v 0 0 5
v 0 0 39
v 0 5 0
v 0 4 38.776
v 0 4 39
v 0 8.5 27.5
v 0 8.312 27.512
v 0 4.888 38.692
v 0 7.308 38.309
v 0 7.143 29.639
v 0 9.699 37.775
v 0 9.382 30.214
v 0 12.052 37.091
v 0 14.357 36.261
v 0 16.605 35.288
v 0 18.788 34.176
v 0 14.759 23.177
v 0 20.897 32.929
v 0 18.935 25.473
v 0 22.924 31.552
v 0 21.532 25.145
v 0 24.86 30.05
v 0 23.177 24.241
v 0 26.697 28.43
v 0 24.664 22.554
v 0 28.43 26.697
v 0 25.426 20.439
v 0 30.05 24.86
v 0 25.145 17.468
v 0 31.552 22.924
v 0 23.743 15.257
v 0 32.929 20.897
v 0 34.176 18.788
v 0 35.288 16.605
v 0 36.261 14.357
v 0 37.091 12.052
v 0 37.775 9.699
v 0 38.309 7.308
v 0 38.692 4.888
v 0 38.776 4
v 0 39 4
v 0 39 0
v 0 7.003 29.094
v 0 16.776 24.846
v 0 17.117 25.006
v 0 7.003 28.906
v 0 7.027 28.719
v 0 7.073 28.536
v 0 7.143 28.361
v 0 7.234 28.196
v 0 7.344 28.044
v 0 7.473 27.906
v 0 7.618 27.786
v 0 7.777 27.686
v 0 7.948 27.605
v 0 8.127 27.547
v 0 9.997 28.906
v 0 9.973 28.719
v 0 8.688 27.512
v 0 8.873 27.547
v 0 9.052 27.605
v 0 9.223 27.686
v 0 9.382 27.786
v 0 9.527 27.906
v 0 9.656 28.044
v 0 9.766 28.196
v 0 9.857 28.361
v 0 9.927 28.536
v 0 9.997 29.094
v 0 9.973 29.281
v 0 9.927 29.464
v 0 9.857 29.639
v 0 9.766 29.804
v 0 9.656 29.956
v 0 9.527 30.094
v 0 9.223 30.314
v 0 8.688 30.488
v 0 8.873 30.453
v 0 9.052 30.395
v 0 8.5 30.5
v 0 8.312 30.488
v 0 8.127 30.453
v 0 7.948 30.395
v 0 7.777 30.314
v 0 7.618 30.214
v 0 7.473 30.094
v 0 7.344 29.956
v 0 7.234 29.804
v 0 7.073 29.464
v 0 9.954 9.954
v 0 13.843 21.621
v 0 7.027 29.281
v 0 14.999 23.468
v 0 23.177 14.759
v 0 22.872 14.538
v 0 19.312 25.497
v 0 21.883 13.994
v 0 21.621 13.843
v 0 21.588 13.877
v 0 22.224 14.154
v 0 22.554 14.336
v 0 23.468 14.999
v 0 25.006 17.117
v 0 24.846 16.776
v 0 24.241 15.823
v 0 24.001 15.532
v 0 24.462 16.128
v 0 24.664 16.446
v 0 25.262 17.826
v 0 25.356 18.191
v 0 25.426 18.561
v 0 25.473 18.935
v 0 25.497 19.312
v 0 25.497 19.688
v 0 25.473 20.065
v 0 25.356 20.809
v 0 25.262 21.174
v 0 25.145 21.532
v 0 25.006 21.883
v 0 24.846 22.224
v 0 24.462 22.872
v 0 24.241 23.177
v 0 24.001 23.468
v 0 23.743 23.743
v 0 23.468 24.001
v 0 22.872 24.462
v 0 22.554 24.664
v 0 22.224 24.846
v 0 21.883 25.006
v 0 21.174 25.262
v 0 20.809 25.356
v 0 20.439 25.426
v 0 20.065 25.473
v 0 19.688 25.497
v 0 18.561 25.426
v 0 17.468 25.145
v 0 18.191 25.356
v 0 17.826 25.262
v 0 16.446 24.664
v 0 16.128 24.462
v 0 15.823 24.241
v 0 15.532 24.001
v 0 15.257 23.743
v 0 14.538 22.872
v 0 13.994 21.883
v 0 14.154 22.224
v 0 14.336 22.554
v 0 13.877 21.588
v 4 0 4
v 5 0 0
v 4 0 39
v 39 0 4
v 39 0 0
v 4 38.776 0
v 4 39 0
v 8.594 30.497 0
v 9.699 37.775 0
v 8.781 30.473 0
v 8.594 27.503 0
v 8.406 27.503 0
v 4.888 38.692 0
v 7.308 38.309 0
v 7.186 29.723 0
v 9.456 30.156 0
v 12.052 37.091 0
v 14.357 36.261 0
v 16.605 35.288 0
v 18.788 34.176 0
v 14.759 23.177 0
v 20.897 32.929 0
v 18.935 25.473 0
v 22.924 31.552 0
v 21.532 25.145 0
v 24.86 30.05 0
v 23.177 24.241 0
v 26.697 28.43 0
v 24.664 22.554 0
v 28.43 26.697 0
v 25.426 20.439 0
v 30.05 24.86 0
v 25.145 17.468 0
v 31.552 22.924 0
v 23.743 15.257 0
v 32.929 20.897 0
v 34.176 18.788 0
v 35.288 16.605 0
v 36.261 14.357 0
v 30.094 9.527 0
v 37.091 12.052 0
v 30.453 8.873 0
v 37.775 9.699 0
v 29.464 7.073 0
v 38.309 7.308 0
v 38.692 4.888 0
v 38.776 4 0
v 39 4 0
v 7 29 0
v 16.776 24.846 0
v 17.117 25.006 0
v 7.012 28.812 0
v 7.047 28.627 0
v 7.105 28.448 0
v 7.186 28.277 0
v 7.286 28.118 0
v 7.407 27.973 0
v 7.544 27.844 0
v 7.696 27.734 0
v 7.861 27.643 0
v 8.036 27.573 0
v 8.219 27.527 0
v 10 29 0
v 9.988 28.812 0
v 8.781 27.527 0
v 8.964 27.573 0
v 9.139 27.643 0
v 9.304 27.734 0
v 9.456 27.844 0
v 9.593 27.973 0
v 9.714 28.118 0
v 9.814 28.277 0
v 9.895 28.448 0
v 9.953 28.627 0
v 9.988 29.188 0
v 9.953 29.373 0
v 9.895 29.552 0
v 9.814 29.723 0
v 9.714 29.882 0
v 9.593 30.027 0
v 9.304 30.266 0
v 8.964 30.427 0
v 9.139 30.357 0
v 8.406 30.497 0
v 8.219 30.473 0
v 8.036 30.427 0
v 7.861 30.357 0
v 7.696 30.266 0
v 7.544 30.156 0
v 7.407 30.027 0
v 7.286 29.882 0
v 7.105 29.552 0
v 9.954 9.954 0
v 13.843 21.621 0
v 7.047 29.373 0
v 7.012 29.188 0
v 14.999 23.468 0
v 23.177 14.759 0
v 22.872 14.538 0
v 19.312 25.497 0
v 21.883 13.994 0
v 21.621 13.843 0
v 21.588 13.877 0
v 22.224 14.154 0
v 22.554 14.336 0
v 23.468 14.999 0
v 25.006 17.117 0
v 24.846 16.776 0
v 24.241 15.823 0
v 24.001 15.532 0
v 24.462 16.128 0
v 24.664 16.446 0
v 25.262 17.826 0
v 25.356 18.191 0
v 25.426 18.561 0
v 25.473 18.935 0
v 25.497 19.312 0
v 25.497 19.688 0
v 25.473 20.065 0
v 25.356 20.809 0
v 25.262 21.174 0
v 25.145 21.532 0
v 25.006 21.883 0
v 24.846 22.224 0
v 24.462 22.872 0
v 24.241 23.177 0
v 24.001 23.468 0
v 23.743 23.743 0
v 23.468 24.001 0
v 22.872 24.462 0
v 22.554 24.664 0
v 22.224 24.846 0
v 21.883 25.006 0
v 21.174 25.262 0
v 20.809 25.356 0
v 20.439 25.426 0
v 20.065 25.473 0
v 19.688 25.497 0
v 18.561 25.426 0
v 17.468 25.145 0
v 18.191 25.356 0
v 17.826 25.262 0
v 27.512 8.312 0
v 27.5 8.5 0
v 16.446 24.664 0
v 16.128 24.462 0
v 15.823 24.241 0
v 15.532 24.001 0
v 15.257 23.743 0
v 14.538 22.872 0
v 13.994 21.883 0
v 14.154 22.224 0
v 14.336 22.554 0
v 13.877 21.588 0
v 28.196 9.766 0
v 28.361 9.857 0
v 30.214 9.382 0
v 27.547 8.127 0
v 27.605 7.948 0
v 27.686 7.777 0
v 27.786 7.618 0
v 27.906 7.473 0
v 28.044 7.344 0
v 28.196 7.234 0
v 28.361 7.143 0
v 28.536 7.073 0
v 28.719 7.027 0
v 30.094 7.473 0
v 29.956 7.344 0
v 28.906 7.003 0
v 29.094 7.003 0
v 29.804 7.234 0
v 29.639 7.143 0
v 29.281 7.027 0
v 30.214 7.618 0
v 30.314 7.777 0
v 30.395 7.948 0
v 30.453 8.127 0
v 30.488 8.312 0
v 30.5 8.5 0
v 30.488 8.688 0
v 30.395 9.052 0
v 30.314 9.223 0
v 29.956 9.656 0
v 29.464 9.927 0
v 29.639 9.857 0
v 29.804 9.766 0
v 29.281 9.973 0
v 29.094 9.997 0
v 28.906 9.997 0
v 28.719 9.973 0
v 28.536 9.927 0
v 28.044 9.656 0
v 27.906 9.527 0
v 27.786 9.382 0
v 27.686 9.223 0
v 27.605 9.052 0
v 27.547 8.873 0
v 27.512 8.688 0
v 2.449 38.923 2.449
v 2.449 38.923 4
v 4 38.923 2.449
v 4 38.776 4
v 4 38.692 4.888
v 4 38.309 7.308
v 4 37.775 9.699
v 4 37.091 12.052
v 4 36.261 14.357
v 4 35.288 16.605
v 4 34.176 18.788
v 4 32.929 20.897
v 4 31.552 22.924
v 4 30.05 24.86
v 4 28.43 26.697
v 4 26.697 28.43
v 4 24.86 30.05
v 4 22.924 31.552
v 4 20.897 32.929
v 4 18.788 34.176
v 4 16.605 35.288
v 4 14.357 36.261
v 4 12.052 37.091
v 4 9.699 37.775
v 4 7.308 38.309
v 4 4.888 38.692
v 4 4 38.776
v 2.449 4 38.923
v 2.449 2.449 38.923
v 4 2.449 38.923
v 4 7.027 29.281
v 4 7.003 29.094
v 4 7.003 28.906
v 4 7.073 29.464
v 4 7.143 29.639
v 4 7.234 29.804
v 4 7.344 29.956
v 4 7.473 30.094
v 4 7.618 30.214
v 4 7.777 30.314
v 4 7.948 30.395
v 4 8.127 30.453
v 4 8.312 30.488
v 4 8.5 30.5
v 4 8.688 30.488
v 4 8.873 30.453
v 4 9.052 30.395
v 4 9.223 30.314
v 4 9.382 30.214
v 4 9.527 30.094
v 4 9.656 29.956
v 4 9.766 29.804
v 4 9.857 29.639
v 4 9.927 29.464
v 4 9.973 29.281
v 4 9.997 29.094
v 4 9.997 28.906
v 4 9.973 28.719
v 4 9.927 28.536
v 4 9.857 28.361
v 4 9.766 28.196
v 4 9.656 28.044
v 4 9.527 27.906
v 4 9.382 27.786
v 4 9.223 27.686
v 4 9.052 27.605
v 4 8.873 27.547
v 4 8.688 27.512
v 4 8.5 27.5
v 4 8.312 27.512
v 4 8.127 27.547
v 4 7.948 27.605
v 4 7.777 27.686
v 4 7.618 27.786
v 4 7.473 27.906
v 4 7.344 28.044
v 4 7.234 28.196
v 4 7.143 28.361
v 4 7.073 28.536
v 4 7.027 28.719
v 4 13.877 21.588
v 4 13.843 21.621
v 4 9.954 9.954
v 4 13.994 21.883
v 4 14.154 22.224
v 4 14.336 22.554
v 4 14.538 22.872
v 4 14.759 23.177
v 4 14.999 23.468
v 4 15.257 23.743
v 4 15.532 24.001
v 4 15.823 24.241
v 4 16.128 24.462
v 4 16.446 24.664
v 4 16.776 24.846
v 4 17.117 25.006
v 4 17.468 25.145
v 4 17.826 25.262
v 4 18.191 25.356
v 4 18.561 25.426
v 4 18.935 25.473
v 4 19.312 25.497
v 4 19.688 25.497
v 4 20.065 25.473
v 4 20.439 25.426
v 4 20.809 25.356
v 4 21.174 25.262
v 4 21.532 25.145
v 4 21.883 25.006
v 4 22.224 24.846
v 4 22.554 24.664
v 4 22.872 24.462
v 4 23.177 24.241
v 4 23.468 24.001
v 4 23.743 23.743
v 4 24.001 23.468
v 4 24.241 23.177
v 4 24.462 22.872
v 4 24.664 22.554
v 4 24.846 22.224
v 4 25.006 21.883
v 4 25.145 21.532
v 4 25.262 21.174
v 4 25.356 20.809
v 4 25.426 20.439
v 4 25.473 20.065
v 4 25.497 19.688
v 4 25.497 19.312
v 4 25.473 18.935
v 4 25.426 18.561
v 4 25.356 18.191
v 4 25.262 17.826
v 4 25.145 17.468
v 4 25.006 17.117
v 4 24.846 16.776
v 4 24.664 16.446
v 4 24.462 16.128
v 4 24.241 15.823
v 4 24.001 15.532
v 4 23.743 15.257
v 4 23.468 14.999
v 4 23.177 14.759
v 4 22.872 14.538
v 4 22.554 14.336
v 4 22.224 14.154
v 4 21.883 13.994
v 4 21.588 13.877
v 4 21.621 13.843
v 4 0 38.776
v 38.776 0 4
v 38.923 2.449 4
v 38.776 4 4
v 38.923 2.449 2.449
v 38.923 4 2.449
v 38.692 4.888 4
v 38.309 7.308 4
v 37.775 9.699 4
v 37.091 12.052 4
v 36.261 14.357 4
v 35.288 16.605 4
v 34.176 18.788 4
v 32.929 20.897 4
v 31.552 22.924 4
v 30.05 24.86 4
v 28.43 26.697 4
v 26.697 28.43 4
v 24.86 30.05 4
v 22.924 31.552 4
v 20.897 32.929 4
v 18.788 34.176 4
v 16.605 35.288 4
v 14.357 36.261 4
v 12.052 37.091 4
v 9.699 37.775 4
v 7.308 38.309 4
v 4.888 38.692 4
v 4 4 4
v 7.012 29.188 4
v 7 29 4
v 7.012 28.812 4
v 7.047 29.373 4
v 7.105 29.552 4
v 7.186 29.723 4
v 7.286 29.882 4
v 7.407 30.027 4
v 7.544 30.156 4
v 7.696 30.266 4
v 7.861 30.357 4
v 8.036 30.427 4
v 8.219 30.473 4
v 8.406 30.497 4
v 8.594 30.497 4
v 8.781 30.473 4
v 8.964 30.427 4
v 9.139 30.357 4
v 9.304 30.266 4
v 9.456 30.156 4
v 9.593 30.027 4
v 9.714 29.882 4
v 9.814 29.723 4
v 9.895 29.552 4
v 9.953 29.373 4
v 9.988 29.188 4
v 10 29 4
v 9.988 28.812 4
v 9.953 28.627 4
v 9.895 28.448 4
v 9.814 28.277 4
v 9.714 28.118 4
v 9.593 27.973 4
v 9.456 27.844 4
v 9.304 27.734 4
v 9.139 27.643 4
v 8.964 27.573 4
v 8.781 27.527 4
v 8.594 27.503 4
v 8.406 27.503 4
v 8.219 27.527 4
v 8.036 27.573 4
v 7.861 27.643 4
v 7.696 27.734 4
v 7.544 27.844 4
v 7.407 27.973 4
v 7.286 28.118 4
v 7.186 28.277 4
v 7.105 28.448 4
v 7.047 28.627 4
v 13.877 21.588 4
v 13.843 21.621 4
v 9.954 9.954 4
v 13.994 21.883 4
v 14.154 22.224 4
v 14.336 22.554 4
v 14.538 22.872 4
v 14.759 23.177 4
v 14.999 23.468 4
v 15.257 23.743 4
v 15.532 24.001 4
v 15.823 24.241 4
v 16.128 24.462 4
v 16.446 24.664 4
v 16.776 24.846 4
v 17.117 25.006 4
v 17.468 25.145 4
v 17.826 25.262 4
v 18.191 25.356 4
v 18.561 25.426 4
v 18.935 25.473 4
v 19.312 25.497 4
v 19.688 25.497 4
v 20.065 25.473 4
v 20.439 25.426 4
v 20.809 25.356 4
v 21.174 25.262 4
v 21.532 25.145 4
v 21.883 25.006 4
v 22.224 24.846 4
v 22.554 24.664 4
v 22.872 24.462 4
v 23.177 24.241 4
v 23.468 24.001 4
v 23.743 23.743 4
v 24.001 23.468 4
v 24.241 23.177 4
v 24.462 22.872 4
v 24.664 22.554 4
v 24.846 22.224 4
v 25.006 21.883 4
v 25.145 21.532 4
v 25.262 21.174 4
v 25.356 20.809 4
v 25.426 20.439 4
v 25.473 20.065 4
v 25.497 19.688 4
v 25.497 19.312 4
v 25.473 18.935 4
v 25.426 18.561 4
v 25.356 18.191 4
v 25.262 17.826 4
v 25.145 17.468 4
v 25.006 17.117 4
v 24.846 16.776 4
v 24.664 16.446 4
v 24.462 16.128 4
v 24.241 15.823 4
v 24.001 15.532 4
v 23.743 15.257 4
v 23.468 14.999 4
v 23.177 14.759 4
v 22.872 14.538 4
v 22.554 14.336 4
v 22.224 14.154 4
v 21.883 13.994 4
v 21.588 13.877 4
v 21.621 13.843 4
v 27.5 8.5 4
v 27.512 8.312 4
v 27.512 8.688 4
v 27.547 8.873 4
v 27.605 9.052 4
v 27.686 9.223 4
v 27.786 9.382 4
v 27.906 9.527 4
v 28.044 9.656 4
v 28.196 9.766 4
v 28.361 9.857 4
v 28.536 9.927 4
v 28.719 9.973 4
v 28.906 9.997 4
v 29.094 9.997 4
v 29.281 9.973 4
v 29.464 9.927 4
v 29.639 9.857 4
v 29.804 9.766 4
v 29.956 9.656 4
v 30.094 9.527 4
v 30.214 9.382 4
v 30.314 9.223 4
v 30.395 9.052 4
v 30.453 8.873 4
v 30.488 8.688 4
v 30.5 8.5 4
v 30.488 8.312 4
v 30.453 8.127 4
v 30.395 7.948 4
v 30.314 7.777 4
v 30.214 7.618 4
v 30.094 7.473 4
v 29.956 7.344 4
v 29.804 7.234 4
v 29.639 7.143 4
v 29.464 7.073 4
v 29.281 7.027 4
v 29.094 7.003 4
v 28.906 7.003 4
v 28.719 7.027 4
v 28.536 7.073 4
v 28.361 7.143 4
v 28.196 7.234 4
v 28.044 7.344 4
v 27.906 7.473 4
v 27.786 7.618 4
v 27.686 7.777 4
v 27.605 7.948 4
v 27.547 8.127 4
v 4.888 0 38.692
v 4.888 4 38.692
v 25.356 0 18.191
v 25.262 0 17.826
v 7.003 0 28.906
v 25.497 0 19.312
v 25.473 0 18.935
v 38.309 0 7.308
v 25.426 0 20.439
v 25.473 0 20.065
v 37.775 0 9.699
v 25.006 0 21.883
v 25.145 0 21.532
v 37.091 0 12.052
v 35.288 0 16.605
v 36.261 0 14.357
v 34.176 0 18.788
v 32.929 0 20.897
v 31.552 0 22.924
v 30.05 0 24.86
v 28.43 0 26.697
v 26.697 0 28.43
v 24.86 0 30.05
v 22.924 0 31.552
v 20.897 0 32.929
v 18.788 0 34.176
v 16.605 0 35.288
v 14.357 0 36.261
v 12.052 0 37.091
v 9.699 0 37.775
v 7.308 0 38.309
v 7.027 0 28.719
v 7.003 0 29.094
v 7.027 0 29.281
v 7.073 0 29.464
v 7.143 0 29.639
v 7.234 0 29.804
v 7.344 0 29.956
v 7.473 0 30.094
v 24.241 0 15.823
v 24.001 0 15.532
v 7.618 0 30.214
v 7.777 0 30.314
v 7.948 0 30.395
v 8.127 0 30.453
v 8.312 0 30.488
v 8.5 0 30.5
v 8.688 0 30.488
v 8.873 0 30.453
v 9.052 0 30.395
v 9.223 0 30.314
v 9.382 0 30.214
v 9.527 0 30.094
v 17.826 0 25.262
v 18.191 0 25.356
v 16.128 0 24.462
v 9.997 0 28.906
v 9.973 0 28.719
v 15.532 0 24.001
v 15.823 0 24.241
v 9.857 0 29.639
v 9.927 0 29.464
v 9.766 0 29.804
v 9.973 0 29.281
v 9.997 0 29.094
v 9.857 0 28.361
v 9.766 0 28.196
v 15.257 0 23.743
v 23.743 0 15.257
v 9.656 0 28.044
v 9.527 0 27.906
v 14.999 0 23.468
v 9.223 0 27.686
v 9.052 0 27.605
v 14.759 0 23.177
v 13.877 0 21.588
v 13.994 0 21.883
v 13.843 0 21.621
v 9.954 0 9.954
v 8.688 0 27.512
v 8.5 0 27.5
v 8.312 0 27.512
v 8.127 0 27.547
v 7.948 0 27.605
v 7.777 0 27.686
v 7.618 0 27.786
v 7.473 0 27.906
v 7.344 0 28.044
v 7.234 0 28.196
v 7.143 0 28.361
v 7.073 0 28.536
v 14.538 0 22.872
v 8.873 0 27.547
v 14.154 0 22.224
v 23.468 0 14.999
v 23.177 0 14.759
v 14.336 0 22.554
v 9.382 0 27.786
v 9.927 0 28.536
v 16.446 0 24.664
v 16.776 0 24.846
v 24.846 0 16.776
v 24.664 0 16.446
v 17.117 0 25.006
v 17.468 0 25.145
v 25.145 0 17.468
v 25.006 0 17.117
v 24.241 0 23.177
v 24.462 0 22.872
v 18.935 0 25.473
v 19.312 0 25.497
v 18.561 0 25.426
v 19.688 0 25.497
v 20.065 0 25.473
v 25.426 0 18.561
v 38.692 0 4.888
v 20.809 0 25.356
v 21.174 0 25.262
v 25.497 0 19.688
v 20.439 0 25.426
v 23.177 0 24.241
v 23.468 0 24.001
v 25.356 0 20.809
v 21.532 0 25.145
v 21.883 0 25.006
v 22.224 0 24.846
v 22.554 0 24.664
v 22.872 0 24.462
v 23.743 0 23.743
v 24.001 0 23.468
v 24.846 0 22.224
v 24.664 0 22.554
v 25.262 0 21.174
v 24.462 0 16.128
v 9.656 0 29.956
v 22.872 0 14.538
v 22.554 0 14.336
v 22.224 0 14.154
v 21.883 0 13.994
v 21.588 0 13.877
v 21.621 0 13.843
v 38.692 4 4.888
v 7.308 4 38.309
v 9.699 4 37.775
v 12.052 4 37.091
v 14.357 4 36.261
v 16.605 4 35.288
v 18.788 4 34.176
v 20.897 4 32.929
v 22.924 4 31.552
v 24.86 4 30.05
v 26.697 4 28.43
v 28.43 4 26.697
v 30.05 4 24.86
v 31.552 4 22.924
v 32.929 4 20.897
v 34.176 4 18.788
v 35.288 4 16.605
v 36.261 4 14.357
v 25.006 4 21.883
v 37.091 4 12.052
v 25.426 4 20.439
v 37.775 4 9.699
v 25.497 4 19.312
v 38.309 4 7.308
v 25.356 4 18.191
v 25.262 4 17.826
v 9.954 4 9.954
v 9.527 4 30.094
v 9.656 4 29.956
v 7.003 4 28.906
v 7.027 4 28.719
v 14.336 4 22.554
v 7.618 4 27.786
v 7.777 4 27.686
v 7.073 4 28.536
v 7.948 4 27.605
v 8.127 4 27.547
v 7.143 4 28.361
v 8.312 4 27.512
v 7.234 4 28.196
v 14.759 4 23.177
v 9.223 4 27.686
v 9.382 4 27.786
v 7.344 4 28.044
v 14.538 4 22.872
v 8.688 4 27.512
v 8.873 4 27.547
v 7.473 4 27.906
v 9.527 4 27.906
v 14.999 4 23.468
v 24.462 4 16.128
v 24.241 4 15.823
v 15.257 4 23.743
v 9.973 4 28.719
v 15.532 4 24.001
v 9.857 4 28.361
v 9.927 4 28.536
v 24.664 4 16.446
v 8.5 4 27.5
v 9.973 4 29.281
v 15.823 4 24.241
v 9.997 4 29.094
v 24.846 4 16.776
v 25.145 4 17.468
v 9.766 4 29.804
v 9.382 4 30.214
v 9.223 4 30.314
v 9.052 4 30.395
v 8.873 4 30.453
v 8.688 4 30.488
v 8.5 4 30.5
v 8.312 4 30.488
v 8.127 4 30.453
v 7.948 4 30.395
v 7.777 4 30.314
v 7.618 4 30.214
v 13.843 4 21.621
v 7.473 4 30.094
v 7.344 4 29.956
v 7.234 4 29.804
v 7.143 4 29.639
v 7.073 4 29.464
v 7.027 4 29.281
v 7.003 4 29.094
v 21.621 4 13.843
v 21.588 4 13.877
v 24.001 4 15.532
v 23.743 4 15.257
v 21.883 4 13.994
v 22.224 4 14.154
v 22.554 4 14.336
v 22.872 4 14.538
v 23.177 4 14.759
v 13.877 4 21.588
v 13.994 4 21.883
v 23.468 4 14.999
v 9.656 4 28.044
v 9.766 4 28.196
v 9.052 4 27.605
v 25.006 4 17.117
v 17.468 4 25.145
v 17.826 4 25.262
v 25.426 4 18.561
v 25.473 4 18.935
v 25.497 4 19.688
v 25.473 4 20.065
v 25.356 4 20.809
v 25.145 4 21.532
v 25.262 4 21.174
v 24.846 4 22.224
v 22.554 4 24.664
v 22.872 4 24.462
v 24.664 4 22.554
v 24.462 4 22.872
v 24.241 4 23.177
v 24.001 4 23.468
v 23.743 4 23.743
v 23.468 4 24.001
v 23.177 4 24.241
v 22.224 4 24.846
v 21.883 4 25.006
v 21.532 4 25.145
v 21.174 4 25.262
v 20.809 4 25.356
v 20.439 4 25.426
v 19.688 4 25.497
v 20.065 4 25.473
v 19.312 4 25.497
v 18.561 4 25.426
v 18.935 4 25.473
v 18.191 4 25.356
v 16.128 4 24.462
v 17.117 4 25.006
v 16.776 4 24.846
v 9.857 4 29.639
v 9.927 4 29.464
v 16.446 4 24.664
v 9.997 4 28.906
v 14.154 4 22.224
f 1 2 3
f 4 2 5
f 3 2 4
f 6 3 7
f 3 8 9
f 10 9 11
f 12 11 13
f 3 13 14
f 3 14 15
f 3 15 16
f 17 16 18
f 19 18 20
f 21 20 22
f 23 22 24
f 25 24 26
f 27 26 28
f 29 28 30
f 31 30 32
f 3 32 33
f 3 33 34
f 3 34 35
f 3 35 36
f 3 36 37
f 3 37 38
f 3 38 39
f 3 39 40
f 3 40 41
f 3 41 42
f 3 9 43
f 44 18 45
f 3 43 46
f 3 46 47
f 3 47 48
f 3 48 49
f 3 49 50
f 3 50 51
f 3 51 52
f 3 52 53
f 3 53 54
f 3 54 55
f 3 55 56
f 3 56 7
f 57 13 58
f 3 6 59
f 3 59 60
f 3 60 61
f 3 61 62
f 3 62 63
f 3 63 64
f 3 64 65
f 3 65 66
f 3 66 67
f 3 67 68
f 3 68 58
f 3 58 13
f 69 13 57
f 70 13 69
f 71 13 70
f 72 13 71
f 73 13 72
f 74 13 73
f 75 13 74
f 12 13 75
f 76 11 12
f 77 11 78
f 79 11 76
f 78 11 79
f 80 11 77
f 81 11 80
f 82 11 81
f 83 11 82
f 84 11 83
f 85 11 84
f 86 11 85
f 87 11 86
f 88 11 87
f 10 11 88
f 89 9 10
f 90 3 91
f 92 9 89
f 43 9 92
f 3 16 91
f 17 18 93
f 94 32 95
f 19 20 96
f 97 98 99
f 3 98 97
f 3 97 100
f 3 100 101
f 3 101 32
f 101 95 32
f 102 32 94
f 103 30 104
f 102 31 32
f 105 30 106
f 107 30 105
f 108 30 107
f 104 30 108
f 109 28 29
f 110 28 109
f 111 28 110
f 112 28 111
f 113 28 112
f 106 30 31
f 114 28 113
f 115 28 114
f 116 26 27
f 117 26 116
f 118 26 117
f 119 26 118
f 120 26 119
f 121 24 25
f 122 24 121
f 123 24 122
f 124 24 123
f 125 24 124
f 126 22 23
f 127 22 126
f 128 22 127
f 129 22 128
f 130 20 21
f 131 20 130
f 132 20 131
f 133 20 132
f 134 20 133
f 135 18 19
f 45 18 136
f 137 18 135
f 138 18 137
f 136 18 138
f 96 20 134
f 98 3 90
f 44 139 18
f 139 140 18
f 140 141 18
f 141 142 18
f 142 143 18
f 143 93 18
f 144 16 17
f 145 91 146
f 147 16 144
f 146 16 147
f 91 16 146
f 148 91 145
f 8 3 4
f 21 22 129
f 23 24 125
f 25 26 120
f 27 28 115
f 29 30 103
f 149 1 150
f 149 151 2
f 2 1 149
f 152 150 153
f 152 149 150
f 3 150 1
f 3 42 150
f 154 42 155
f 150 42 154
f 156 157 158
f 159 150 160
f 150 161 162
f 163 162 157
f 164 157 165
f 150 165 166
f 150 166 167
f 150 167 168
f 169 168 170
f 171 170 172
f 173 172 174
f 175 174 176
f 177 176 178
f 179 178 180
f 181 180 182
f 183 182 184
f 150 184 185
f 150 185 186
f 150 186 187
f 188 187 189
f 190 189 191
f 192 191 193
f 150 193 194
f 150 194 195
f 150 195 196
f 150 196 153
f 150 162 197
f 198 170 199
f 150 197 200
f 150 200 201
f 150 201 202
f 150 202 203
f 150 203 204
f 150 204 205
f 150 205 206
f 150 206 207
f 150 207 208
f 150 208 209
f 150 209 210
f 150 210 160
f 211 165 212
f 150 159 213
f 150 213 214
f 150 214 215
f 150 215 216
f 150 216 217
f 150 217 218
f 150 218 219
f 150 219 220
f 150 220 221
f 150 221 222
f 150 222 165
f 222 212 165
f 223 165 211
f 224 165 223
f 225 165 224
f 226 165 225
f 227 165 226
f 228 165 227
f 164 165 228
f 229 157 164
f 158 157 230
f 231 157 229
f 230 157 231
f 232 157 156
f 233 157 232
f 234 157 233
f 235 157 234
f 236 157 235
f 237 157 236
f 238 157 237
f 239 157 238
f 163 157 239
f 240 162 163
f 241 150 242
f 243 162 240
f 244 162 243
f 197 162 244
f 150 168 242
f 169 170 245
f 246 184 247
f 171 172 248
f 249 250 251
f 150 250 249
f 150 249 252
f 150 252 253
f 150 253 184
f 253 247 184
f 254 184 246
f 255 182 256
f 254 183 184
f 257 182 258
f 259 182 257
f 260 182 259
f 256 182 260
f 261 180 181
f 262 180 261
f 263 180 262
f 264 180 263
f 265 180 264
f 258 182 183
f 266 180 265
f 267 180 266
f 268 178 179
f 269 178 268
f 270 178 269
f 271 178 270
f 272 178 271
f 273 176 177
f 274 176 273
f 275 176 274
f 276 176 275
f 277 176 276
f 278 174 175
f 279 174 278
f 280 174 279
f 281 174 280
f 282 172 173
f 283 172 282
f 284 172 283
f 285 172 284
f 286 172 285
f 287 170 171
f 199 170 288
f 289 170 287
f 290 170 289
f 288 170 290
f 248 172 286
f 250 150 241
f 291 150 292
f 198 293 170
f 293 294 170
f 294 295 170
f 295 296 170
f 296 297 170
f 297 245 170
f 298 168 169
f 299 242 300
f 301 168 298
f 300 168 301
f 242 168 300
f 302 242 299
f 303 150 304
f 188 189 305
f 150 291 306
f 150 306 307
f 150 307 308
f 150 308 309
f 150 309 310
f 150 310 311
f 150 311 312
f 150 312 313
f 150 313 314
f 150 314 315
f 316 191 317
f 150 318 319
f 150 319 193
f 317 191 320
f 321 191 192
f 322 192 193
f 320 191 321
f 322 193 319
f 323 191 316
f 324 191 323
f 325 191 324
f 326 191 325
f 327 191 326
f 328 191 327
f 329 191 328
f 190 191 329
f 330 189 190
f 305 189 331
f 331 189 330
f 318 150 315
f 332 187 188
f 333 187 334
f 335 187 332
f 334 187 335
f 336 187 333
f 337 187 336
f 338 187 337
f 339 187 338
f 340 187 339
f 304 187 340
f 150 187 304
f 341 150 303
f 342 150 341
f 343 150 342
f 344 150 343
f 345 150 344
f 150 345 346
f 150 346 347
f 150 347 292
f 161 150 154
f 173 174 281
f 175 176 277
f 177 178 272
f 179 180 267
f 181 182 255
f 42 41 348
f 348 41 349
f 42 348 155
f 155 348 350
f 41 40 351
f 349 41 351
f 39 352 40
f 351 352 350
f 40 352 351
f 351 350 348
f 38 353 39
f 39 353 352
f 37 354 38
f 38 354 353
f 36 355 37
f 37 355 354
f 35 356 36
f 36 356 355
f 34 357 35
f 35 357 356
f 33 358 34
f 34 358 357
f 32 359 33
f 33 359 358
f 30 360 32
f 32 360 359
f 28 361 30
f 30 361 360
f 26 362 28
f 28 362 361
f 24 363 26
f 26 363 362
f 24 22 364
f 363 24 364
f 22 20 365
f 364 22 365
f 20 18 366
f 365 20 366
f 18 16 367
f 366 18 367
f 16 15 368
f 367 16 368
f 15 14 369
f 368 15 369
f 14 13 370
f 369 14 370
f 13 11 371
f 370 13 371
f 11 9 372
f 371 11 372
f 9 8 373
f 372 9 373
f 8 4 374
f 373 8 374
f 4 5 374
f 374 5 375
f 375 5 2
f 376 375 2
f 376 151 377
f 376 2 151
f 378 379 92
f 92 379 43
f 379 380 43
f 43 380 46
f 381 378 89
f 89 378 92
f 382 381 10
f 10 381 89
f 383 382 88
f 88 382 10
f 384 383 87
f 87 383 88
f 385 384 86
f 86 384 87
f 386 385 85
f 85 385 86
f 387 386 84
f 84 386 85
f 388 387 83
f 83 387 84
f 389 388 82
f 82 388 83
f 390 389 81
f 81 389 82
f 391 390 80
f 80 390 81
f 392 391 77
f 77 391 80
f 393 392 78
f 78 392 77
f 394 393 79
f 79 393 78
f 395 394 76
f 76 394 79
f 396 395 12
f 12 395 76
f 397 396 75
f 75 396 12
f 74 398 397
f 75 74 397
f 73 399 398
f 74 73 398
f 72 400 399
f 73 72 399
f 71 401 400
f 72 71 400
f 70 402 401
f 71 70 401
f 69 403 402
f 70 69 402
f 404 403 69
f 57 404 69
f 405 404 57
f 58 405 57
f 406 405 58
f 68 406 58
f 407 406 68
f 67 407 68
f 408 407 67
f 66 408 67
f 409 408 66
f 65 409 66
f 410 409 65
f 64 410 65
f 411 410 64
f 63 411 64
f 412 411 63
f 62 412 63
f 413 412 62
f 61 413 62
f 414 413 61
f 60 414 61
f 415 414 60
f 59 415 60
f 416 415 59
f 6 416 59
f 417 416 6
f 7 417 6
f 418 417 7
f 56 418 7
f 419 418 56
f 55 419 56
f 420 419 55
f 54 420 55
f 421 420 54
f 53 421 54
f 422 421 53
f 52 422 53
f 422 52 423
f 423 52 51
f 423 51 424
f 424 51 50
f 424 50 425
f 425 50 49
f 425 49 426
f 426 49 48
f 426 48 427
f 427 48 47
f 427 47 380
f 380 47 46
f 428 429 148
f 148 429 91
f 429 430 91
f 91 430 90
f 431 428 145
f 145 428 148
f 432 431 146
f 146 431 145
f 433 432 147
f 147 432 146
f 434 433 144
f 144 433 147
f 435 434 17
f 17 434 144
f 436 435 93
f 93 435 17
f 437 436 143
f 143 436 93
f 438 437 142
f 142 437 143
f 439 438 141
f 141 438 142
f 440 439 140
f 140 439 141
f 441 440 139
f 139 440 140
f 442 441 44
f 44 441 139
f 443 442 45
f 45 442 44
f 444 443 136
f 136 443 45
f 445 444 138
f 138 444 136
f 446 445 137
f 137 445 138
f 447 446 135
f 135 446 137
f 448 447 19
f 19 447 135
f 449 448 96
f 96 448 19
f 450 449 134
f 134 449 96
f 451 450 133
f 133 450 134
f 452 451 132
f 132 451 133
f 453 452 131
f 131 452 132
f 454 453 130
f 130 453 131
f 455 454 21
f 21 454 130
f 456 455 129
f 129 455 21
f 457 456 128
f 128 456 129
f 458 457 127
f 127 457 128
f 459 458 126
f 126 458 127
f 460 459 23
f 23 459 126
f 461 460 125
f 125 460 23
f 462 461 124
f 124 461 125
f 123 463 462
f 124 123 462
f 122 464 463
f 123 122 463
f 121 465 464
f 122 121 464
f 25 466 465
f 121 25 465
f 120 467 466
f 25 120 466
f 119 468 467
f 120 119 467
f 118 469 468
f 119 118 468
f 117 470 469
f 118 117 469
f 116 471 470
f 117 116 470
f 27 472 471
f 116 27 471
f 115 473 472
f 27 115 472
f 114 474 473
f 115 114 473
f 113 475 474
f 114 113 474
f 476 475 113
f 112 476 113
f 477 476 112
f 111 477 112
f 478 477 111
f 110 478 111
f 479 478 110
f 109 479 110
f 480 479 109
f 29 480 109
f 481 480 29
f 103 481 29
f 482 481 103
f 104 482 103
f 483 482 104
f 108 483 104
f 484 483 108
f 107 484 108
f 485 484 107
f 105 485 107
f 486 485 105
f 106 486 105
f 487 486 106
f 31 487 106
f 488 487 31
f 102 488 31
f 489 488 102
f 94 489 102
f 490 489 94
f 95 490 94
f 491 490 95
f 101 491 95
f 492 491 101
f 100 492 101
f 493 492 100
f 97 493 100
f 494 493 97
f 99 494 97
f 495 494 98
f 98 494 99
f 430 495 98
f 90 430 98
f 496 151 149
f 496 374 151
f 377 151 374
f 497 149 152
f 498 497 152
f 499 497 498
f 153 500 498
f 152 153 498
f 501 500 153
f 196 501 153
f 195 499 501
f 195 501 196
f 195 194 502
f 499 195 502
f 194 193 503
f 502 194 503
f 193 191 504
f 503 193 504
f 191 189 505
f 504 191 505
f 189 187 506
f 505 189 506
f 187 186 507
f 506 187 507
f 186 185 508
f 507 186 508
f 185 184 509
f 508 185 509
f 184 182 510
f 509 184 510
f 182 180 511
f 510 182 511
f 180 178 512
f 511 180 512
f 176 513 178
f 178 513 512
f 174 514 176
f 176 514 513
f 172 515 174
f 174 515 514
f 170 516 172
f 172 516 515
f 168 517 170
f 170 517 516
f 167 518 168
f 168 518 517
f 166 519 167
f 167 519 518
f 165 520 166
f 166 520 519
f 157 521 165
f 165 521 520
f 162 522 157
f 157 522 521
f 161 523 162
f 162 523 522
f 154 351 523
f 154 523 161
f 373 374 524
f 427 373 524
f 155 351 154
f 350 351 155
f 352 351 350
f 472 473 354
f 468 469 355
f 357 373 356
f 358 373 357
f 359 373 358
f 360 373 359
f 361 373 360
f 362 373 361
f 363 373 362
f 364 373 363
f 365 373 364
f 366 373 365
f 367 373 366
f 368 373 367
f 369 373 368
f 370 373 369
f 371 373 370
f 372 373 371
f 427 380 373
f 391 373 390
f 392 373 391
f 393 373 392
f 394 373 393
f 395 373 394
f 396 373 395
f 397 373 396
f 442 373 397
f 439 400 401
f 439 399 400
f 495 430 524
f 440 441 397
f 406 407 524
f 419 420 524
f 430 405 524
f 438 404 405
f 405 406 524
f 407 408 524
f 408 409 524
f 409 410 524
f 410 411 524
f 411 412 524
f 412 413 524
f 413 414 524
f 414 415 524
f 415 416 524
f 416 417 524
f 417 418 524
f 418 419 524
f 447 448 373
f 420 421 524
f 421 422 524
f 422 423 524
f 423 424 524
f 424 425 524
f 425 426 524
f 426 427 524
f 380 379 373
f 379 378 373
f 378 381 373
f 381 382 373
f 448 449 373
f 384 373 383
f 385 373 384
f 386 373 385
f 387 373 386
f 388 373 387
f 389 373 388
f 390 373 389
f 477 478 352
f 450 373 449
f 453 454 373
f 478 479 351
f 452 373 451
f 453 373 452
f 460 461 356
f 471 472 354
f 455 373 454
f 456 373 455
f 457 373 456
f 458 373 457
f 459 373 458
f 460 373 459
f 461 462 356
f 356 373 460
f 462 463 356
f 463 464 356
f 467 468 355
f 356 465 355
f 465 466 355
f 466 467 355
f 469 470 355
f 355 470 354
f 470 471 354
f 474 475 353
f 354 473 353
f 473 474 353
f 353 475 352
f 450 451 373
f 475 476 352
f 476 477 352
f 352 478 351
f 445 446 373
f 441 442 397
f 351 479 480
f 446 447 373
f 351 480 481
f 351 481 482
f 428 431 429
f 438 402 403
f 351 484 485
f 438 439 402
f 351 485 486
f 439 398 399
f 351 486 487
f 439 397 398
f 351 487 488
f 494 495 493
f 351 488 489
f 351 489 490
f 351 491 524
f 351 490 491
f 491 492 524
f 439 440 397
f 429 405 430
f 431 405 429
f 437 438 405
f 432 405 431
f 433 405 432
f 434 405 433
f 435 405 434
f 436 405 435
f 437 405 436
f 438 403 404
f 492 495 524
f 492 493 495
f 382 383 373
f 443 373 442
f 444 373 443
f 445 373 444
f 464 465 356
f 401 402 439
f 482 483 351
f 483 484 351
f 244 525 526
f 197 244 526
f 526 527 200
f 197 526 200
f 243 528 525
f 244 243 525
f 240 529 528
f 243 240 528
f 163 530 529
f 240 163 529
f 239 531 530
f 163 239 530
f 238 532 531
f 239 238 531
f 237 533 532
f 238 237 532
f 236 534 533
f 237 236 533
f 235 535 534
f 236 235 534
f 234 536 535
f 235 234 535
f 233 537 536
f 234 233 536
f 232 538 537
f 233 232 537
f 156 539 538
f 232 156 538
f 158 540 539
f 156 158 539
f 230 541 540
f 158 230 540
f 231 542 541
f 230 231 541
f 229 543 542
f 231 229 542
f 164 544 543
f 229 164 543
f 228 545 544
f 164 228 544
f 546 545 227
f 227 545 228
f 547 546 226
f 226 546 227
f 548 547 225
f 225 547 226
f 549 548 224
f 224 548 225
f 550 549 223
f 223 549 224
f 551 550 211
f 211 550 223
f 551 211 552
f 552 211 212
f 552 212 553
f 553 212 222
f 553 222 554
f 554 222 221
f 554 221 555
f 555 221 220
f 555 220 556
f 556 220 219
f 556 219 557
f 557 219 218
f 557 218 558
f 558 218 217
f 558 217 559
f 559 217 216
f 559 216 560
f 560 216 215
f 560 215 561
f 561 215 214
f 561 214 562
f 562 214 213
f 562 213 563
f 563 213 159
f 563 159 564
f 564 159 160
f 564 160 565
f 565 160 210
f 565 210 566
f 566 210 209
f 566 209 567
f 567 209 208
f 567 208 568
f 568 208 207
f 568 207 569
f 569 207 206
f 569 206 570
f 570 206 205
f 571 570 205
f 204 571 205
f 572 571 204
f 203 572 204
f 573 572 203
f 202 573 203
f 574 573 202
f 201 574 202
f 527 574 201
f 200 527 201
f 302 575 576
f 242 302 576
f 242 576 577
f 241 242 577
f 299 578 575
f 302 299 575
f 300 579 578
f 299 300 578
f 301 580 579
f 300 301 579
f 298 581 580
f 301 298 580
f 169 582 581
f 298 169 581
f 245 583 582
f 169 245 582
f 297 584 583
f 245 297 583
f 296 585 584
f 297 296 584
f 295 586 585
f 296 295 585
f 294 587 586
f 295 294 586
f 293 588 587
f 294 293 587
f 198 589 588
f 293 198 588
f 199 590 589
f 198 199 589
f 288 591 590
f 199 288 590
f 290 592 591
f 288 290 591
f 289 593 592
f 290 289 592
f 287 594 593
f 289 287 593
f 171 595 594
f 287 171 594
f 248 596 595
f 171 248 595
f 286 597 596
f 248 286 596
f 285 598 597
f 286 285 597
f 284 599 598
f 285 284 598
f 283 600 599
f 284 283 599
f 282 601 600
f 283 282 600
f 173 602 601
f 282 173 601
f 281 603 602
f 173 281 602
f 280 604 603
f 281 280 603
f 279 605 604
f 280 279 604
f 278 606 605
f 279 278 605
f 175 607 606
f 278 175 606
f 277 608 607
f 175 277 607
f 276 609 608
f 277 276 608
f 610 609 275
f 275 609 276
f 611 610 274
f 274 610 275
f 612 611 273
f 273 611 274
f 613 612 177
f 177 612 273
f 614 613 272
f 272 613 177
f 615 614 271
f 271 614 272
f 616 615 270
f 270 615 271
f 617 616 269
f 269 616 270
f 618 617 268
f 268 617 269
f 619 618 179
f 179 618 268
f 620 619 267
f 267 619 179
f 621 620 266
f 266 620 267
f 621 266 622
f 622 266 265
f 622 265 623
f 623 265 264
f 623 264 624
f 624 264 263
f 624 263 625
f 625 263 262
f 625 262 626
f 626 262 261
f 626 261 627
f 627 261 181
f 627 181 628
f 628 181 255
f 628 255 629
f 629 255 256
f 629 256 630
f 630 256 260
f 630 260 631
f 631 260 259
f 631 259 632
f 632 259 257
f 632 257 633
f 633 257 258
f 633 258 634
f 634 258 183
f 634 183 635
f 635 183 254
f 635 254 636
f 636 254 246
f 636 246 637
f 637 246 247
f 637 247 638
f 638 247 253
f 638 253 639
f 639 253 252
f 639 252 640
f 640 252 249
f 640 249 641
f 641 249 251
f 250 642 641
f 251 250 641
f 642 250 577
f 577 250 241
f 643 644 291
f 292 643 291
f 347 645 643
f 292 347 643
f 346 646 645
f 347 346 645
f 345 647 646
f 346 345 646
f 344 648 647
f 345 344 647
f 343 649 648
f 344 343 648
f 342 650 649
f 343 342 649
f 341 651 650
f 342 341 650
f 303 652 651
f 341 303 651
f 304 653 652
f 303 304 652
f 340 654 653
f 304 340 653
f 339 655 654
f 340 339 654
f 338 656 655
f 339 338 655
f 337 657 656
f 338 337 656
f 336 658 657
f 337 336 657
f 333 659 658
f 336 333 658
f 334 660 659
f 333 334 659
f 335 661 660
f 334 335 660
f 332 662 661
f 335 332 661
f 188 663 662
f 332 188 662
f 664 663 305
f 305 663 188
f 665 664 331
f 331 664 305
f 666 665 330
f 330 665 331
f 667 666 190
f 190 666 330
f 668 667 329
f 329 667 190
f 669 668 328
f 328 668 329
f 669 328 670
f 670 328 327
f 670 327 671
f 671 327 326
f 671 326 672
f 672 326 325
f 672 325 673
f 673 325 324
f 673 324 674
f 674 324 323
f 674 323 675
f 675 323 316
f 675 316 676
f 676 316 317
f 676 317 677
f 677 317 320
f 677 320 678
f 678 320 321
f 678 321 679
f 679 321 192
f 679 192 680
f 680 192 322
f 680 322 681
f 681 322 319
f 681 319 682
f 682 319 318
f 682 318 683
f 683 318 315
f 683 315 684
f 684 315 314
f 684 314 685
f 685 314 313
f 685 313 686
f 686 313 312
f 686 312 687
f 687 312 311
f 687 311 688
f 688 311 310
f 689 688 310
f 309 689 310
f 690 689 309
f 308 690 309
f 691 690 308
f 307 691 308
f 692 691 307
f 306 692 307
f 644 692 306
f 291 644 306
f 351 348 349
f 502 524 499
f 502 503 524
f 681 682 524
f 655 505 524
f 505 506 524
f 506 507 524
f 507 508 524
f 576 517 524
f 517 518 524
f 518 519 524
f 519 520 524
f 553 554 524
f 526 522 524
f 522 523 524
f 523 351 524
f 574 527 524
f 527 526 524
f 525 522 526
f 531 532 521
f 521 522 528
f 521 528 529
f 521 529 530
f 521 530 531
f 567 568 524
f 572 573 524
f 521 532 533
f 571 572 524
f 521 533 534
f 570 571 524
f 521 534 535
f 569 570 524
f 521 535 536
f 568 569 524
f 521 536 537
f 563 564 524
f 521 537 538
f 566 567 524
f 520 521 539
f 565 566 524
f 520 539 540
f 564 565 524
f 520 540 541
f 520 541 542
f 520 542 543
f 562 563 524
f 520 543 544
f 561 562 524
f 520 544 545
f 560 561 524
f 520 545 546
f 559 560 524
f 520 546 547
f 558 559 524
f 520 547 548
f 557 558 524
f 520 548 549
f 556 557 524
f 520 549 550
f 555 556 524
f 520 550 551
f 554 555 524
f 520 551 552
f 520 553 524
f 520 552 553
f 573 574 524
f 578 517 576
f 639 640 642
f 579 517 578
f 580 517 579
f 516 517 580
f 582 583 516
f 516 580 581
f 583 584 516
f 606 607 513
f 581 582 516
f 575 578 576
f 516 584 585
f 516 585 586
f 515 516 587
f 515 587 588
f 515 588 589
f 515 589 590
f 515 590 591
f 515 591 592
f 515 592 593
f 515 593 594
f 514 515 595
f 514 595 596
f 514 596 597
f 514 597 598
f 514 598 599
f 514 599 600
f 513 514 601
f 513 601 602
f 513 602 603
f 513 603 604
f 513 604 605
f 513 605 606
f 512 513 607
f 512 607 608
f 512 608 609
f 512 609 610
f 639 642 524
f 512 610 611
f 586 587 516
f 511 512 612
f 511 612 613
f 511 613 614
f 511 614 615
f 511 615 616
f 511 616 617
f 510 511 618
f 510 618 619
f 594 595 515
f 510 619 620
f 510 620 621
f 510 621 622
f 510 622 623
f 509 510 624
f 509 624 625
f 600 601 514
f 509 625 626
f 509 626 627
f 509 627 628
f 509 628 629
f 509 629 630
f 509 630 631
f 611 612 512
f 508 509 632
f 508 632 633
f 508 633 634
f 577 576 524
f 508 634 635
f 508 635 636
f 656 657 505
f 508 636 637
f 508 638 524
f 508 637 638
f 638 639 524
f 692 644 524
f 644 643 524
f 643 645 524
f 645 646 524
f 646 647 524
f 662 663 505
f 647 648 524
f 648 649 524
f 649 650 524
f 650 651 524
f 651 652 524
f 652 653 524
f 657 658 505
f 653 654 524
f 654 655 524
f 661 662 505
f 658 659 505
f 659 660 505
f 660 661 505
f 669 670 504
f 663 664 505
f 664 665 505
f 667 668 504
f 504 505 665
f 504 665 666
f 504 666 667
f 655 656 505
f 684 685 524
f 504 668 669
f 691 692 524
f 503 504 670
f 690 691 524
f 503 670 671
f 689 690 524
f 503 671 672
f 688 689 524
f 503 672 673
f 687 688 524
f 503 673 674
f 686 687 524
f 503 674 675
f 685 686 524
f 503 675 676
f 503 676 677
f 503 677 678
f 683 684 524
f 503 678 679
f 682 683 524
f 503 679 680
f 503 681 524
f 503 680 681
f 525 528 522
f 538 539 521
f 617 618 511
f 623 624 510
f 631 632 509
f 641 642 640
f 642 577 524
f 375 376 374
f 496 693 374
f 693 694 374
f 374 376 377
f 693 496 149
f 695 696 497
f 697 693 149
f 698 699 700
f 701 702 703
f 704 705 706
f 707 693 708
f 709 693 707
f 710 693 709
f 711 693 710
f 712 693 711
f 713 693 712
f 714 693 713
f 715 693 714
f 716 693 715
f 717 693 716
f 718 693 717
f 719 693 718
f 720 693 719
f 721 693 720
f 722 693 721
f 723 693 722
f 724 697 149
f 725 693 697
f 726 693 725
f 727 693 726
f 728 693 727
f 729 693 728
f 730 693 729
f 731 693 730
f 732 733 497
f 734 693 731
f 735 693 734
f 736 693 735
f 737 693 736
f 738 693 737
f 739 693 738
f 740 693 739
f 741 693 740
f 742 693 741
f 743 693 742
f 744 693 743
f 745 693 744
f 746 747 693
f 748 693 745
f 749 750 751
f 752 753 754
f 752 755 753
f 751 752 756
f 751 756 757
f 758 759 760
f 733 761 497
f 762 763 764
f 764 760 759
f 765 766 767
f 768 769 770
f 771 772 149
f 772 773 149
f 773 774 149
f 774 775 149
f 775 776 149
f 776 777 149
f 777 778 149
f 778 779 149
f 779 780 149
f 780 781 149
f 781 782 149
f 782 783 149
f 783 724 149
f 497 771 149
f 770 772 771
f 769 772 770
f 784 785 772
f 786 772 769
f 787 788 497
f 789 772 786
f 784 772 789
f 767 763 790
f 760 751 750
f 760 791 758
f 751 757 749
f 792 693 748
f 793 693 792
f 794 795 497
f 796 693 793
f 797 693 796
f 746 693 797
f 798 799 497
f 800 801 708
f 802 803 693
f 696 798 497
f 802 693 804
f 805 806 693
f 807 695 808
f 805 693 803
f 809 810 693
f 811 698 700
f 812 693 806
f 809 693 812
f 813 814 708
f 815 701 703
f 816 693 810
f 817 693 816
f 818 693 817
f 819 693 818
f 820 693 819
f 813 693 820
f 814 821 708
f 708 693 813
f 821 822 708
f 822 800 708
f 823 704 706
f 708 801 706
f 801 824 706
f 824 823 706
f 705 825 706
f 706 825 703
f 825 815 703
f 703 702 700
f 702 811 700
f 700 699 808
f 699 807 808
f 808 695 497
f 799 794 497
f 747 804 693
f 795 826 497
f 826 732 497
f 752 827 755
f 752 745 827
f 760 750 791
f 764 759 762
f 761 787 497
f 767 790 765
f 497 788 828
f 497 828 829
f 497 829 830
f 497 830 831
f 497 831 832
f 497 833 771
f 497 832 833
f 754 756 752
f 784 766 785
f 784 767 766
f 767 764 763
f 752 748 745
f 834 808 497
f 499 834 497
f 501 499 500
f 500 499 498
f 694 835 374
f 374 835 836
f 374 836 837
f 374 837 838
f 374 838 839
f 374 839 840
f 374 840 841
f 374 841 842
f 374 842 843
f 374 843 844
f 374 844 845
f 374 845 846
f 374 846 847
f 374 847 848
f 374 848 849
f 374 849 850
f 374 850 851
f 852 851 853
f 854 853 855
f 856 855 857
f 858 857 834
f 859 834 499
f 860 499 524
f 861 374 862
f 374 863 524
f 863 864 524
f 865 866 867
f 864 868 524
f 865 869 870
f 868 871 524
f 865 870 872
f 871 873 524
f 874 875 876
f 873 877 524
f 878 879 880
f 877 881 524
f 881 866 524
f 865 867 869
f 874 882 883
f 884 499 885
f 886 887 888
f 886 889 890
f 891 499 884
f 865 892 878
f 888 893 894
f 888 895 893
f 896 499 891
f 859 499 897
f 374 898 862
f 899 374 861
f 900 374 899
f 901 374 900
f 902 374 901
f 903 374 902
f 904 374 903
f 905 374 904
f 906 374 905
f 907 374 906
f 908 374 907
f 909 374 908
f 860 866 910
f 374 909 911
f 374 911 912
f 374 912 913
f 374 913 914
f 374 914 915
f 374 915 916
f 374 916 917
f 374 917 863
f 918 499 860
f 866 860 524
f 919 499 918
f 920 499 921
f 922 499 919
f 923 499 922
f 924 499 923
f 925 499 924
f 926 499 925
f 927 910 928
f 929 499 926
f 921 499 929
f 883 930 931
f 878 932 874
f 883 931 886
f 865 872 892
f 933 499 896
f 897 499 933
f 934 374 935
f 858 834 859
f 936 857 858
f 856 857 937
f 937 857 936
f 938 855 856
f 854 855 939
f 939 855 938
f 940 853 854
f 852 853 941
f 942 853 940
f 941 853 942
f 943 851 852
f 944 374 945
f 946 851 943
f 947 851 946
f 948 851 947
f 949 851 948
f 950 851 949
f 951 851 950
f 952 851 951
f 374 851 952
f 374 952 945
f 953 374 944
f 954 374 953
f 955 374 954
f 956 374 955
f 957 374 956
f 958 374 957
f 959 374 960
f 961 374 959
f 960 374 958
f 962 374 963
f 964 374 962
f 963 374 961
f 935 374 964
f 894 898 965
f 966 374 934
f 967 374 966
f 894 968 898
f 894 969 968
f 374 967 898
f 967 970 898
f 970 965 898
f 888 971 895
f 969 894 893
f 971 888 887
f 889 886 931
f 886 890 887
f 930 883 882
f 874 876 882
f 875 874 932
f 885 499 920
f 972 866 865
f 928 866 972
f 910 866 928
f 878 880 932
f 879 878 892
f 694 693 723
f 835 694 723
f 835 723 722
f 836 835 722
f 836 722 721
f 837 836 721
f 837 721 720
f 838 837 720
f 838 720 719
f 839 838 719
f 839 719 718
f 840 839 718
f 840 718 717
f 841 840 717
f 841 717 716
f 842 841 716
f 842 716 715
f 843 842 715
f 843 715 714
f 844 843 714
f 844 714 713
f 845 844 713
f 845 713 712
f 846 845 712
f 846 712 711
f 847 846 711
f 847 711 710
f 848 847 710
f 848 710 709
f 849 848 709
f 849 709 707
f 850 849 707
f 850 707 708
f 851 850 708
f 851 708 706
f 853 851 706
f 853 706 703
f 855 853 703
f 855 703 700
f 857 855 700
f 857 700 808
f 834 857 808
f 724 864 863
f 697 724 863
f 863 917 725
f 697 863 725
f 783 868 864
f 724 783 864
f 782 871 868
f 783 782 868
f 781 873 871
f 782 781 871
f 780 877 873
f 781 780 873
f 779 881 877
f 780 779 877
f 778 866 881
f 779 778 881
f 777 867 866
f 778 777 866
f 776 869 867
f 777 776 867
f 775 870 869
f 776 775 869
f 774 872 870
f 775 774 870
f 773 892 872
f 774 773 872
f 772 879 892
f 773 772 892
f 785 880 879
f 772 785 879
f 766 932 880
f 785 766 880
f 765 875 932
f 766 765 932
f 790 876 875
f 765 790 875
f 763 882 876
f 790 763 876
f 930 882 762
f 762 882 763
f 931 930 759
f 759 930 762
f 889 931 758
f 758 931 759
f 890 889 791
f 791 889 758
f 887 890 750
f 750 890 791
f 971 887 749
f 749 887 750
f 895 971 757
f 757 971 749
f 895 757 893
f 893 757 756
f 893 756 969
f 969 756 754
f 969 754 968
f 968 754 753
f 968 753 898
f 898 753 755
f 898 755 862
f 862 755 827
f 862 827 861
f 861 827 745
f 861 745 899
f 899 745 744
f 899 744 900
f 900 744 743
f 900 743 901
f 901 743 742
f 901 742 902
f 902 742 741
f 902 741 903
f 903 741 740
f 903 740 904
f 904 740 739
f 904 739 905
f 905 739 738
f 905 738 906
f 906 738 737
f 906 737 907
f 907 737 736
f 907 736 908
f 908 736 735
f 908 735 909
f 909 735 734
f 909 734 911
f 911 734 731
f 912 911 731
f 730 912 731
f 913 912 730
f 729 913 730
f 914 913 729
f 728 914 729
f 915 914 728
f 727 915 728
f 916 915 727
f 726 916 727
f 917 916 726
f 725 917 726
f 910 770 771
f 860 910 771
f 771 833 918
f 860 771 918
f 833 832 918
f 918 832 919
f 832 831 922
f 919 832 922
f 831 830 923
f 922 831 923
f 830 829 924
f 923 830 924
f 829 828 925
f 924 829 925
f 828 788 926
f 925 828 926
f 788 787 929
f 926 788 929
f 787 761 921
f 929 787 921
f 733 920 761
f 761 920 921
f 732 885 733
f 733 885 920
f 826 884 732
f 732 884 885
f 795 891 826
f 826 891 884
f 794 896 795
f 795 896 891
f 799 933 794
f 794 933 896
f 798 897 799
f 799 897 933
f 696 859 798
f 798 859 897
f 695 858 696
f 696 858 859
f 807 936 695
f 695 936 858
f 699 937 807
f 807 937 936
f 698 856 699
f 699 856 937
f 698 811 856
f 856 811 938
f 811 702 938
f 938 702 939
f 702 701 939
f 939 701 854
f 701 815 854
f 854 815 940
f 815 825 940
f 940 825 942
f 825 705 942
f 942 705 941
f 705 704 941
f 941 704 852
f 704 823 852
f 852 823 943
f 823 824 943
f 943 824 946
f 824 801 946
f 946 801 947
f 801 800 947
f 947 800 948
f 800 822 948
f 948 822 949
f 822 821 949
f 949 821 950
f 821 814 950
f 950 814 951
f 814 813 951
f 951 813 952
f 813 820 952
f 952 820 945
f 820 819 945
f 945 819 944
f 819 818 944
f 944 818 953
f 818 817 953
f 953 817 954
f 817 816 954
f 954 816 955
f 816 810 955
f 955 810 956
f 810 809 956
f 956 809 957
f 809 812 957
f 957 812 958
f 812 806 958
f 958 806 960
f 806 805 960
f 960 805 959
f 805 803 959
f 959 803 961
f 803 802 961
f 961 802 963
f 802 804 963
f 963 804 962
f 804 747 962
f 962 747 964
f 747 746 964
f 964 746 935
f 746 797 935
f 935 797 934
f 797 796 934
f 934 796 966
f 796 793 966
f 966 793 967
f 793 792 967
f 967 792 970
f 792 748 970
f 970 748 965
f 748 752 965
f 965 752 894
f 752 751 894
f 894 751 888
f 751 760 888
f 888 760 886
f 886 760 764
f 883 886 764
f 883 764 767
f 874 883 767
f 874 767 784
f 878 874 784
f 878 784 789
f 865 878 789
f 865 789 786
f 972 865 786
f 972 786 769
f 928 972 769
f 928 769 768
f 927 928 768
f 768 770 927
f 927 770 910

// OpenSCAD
d_trou=25;
ep=4;
r_trou=1.5;
cube_int=35;
ep_bois=9;
r_goutte=6;
r_pointe=5.5;
height=10;
dec=2.5;
l_cassure=5;

module goutte(){
	union(){
		cylinder(h = height, r = r_goutte, $fn=100);
		polyhedron(
  points=[[dec,-r_pointe,0],[dec,r_pointe,0],[dec+r_pointe*2,0,0],[dec,-r_pointe,height],[dec,r_pointe,height],[dec+r_pointe*2,0,height]], 
  triangles=[[1,0,2],[3,2,0],[3,5,2],[0,1,3],[3,1,4],[1,5,4],[1,2,5],[4,5,3]]);	
	}
}

module coin(){
	difference(){
		union(){
		intersection(){
			cube([cube_int+ep,cube_int+ep,cube_int+ep]);
			rotate([0,90,0])cylinder(h = ep, r = cube_int+ep, $fn=100);
		}
		intersection(){
			cube([cube_int+ep,cube_int+ep,cube_int+ep]);
			cylinder(h = ep, r = cube_int+ep, $fn=100);
		}
		intersection(){
			cube([cube_int+ep,cube_int+ep,cube_int+ep]);
			translate([0,ep,0]){rotate([90,0,0])cylinder(h = ep, r = cube_int+ep, $fn=100);}
		}
		}

		translate([ep,ep,ep]){cube([cube_int+10,cube_int+10,cube_int+10]);}

		//trous du bas
		translate([d_trou+ep,ep+ep_bois/2,-5]){cylinder(h = ep*3, r = r_trou, $fn=50);}
		translate([ep+ep_bois/2,d_trou+ep,-5]){cylinder(h = ep*3, r = r_trou, $fn=50);}

		//trous du haut
		translate([-5,ep+ep_bois/2,d_trou+ep]){rotate([0,90,0])cylinder(h = ep*3, r = r_trou, $fn=50);}
		translate([ep+ep_bois/2,-5,d_trou+ep]){rotate([0,90,90])cylinder(h = ep*3, r = r_trou, $fn=50);}

		//gouttes
		translate([(cube_int+ep)/2,(cube_int+ep)/2,-5]){rotate([0,0,225])goutte();}
		translate([-5,(cube_int+ep)/2,(cube_int+ep)/2]){rotate([90,135,90])goutte();}
		translate([(cube_int+ep)/2,-5,(cube_int+ep)/2]){rotate([270,135,0])goutte();}

		//cassure du coin
		polyhedron(
  points=[[0,0,0],[l_cassure,0,0],[0,l_cassure,0],[0,0,l_cassure]], 
  triangles=[[2,0,1],[0,3,1],[0,2,3],[1,3,2]]);
		
	}
}

coin();
